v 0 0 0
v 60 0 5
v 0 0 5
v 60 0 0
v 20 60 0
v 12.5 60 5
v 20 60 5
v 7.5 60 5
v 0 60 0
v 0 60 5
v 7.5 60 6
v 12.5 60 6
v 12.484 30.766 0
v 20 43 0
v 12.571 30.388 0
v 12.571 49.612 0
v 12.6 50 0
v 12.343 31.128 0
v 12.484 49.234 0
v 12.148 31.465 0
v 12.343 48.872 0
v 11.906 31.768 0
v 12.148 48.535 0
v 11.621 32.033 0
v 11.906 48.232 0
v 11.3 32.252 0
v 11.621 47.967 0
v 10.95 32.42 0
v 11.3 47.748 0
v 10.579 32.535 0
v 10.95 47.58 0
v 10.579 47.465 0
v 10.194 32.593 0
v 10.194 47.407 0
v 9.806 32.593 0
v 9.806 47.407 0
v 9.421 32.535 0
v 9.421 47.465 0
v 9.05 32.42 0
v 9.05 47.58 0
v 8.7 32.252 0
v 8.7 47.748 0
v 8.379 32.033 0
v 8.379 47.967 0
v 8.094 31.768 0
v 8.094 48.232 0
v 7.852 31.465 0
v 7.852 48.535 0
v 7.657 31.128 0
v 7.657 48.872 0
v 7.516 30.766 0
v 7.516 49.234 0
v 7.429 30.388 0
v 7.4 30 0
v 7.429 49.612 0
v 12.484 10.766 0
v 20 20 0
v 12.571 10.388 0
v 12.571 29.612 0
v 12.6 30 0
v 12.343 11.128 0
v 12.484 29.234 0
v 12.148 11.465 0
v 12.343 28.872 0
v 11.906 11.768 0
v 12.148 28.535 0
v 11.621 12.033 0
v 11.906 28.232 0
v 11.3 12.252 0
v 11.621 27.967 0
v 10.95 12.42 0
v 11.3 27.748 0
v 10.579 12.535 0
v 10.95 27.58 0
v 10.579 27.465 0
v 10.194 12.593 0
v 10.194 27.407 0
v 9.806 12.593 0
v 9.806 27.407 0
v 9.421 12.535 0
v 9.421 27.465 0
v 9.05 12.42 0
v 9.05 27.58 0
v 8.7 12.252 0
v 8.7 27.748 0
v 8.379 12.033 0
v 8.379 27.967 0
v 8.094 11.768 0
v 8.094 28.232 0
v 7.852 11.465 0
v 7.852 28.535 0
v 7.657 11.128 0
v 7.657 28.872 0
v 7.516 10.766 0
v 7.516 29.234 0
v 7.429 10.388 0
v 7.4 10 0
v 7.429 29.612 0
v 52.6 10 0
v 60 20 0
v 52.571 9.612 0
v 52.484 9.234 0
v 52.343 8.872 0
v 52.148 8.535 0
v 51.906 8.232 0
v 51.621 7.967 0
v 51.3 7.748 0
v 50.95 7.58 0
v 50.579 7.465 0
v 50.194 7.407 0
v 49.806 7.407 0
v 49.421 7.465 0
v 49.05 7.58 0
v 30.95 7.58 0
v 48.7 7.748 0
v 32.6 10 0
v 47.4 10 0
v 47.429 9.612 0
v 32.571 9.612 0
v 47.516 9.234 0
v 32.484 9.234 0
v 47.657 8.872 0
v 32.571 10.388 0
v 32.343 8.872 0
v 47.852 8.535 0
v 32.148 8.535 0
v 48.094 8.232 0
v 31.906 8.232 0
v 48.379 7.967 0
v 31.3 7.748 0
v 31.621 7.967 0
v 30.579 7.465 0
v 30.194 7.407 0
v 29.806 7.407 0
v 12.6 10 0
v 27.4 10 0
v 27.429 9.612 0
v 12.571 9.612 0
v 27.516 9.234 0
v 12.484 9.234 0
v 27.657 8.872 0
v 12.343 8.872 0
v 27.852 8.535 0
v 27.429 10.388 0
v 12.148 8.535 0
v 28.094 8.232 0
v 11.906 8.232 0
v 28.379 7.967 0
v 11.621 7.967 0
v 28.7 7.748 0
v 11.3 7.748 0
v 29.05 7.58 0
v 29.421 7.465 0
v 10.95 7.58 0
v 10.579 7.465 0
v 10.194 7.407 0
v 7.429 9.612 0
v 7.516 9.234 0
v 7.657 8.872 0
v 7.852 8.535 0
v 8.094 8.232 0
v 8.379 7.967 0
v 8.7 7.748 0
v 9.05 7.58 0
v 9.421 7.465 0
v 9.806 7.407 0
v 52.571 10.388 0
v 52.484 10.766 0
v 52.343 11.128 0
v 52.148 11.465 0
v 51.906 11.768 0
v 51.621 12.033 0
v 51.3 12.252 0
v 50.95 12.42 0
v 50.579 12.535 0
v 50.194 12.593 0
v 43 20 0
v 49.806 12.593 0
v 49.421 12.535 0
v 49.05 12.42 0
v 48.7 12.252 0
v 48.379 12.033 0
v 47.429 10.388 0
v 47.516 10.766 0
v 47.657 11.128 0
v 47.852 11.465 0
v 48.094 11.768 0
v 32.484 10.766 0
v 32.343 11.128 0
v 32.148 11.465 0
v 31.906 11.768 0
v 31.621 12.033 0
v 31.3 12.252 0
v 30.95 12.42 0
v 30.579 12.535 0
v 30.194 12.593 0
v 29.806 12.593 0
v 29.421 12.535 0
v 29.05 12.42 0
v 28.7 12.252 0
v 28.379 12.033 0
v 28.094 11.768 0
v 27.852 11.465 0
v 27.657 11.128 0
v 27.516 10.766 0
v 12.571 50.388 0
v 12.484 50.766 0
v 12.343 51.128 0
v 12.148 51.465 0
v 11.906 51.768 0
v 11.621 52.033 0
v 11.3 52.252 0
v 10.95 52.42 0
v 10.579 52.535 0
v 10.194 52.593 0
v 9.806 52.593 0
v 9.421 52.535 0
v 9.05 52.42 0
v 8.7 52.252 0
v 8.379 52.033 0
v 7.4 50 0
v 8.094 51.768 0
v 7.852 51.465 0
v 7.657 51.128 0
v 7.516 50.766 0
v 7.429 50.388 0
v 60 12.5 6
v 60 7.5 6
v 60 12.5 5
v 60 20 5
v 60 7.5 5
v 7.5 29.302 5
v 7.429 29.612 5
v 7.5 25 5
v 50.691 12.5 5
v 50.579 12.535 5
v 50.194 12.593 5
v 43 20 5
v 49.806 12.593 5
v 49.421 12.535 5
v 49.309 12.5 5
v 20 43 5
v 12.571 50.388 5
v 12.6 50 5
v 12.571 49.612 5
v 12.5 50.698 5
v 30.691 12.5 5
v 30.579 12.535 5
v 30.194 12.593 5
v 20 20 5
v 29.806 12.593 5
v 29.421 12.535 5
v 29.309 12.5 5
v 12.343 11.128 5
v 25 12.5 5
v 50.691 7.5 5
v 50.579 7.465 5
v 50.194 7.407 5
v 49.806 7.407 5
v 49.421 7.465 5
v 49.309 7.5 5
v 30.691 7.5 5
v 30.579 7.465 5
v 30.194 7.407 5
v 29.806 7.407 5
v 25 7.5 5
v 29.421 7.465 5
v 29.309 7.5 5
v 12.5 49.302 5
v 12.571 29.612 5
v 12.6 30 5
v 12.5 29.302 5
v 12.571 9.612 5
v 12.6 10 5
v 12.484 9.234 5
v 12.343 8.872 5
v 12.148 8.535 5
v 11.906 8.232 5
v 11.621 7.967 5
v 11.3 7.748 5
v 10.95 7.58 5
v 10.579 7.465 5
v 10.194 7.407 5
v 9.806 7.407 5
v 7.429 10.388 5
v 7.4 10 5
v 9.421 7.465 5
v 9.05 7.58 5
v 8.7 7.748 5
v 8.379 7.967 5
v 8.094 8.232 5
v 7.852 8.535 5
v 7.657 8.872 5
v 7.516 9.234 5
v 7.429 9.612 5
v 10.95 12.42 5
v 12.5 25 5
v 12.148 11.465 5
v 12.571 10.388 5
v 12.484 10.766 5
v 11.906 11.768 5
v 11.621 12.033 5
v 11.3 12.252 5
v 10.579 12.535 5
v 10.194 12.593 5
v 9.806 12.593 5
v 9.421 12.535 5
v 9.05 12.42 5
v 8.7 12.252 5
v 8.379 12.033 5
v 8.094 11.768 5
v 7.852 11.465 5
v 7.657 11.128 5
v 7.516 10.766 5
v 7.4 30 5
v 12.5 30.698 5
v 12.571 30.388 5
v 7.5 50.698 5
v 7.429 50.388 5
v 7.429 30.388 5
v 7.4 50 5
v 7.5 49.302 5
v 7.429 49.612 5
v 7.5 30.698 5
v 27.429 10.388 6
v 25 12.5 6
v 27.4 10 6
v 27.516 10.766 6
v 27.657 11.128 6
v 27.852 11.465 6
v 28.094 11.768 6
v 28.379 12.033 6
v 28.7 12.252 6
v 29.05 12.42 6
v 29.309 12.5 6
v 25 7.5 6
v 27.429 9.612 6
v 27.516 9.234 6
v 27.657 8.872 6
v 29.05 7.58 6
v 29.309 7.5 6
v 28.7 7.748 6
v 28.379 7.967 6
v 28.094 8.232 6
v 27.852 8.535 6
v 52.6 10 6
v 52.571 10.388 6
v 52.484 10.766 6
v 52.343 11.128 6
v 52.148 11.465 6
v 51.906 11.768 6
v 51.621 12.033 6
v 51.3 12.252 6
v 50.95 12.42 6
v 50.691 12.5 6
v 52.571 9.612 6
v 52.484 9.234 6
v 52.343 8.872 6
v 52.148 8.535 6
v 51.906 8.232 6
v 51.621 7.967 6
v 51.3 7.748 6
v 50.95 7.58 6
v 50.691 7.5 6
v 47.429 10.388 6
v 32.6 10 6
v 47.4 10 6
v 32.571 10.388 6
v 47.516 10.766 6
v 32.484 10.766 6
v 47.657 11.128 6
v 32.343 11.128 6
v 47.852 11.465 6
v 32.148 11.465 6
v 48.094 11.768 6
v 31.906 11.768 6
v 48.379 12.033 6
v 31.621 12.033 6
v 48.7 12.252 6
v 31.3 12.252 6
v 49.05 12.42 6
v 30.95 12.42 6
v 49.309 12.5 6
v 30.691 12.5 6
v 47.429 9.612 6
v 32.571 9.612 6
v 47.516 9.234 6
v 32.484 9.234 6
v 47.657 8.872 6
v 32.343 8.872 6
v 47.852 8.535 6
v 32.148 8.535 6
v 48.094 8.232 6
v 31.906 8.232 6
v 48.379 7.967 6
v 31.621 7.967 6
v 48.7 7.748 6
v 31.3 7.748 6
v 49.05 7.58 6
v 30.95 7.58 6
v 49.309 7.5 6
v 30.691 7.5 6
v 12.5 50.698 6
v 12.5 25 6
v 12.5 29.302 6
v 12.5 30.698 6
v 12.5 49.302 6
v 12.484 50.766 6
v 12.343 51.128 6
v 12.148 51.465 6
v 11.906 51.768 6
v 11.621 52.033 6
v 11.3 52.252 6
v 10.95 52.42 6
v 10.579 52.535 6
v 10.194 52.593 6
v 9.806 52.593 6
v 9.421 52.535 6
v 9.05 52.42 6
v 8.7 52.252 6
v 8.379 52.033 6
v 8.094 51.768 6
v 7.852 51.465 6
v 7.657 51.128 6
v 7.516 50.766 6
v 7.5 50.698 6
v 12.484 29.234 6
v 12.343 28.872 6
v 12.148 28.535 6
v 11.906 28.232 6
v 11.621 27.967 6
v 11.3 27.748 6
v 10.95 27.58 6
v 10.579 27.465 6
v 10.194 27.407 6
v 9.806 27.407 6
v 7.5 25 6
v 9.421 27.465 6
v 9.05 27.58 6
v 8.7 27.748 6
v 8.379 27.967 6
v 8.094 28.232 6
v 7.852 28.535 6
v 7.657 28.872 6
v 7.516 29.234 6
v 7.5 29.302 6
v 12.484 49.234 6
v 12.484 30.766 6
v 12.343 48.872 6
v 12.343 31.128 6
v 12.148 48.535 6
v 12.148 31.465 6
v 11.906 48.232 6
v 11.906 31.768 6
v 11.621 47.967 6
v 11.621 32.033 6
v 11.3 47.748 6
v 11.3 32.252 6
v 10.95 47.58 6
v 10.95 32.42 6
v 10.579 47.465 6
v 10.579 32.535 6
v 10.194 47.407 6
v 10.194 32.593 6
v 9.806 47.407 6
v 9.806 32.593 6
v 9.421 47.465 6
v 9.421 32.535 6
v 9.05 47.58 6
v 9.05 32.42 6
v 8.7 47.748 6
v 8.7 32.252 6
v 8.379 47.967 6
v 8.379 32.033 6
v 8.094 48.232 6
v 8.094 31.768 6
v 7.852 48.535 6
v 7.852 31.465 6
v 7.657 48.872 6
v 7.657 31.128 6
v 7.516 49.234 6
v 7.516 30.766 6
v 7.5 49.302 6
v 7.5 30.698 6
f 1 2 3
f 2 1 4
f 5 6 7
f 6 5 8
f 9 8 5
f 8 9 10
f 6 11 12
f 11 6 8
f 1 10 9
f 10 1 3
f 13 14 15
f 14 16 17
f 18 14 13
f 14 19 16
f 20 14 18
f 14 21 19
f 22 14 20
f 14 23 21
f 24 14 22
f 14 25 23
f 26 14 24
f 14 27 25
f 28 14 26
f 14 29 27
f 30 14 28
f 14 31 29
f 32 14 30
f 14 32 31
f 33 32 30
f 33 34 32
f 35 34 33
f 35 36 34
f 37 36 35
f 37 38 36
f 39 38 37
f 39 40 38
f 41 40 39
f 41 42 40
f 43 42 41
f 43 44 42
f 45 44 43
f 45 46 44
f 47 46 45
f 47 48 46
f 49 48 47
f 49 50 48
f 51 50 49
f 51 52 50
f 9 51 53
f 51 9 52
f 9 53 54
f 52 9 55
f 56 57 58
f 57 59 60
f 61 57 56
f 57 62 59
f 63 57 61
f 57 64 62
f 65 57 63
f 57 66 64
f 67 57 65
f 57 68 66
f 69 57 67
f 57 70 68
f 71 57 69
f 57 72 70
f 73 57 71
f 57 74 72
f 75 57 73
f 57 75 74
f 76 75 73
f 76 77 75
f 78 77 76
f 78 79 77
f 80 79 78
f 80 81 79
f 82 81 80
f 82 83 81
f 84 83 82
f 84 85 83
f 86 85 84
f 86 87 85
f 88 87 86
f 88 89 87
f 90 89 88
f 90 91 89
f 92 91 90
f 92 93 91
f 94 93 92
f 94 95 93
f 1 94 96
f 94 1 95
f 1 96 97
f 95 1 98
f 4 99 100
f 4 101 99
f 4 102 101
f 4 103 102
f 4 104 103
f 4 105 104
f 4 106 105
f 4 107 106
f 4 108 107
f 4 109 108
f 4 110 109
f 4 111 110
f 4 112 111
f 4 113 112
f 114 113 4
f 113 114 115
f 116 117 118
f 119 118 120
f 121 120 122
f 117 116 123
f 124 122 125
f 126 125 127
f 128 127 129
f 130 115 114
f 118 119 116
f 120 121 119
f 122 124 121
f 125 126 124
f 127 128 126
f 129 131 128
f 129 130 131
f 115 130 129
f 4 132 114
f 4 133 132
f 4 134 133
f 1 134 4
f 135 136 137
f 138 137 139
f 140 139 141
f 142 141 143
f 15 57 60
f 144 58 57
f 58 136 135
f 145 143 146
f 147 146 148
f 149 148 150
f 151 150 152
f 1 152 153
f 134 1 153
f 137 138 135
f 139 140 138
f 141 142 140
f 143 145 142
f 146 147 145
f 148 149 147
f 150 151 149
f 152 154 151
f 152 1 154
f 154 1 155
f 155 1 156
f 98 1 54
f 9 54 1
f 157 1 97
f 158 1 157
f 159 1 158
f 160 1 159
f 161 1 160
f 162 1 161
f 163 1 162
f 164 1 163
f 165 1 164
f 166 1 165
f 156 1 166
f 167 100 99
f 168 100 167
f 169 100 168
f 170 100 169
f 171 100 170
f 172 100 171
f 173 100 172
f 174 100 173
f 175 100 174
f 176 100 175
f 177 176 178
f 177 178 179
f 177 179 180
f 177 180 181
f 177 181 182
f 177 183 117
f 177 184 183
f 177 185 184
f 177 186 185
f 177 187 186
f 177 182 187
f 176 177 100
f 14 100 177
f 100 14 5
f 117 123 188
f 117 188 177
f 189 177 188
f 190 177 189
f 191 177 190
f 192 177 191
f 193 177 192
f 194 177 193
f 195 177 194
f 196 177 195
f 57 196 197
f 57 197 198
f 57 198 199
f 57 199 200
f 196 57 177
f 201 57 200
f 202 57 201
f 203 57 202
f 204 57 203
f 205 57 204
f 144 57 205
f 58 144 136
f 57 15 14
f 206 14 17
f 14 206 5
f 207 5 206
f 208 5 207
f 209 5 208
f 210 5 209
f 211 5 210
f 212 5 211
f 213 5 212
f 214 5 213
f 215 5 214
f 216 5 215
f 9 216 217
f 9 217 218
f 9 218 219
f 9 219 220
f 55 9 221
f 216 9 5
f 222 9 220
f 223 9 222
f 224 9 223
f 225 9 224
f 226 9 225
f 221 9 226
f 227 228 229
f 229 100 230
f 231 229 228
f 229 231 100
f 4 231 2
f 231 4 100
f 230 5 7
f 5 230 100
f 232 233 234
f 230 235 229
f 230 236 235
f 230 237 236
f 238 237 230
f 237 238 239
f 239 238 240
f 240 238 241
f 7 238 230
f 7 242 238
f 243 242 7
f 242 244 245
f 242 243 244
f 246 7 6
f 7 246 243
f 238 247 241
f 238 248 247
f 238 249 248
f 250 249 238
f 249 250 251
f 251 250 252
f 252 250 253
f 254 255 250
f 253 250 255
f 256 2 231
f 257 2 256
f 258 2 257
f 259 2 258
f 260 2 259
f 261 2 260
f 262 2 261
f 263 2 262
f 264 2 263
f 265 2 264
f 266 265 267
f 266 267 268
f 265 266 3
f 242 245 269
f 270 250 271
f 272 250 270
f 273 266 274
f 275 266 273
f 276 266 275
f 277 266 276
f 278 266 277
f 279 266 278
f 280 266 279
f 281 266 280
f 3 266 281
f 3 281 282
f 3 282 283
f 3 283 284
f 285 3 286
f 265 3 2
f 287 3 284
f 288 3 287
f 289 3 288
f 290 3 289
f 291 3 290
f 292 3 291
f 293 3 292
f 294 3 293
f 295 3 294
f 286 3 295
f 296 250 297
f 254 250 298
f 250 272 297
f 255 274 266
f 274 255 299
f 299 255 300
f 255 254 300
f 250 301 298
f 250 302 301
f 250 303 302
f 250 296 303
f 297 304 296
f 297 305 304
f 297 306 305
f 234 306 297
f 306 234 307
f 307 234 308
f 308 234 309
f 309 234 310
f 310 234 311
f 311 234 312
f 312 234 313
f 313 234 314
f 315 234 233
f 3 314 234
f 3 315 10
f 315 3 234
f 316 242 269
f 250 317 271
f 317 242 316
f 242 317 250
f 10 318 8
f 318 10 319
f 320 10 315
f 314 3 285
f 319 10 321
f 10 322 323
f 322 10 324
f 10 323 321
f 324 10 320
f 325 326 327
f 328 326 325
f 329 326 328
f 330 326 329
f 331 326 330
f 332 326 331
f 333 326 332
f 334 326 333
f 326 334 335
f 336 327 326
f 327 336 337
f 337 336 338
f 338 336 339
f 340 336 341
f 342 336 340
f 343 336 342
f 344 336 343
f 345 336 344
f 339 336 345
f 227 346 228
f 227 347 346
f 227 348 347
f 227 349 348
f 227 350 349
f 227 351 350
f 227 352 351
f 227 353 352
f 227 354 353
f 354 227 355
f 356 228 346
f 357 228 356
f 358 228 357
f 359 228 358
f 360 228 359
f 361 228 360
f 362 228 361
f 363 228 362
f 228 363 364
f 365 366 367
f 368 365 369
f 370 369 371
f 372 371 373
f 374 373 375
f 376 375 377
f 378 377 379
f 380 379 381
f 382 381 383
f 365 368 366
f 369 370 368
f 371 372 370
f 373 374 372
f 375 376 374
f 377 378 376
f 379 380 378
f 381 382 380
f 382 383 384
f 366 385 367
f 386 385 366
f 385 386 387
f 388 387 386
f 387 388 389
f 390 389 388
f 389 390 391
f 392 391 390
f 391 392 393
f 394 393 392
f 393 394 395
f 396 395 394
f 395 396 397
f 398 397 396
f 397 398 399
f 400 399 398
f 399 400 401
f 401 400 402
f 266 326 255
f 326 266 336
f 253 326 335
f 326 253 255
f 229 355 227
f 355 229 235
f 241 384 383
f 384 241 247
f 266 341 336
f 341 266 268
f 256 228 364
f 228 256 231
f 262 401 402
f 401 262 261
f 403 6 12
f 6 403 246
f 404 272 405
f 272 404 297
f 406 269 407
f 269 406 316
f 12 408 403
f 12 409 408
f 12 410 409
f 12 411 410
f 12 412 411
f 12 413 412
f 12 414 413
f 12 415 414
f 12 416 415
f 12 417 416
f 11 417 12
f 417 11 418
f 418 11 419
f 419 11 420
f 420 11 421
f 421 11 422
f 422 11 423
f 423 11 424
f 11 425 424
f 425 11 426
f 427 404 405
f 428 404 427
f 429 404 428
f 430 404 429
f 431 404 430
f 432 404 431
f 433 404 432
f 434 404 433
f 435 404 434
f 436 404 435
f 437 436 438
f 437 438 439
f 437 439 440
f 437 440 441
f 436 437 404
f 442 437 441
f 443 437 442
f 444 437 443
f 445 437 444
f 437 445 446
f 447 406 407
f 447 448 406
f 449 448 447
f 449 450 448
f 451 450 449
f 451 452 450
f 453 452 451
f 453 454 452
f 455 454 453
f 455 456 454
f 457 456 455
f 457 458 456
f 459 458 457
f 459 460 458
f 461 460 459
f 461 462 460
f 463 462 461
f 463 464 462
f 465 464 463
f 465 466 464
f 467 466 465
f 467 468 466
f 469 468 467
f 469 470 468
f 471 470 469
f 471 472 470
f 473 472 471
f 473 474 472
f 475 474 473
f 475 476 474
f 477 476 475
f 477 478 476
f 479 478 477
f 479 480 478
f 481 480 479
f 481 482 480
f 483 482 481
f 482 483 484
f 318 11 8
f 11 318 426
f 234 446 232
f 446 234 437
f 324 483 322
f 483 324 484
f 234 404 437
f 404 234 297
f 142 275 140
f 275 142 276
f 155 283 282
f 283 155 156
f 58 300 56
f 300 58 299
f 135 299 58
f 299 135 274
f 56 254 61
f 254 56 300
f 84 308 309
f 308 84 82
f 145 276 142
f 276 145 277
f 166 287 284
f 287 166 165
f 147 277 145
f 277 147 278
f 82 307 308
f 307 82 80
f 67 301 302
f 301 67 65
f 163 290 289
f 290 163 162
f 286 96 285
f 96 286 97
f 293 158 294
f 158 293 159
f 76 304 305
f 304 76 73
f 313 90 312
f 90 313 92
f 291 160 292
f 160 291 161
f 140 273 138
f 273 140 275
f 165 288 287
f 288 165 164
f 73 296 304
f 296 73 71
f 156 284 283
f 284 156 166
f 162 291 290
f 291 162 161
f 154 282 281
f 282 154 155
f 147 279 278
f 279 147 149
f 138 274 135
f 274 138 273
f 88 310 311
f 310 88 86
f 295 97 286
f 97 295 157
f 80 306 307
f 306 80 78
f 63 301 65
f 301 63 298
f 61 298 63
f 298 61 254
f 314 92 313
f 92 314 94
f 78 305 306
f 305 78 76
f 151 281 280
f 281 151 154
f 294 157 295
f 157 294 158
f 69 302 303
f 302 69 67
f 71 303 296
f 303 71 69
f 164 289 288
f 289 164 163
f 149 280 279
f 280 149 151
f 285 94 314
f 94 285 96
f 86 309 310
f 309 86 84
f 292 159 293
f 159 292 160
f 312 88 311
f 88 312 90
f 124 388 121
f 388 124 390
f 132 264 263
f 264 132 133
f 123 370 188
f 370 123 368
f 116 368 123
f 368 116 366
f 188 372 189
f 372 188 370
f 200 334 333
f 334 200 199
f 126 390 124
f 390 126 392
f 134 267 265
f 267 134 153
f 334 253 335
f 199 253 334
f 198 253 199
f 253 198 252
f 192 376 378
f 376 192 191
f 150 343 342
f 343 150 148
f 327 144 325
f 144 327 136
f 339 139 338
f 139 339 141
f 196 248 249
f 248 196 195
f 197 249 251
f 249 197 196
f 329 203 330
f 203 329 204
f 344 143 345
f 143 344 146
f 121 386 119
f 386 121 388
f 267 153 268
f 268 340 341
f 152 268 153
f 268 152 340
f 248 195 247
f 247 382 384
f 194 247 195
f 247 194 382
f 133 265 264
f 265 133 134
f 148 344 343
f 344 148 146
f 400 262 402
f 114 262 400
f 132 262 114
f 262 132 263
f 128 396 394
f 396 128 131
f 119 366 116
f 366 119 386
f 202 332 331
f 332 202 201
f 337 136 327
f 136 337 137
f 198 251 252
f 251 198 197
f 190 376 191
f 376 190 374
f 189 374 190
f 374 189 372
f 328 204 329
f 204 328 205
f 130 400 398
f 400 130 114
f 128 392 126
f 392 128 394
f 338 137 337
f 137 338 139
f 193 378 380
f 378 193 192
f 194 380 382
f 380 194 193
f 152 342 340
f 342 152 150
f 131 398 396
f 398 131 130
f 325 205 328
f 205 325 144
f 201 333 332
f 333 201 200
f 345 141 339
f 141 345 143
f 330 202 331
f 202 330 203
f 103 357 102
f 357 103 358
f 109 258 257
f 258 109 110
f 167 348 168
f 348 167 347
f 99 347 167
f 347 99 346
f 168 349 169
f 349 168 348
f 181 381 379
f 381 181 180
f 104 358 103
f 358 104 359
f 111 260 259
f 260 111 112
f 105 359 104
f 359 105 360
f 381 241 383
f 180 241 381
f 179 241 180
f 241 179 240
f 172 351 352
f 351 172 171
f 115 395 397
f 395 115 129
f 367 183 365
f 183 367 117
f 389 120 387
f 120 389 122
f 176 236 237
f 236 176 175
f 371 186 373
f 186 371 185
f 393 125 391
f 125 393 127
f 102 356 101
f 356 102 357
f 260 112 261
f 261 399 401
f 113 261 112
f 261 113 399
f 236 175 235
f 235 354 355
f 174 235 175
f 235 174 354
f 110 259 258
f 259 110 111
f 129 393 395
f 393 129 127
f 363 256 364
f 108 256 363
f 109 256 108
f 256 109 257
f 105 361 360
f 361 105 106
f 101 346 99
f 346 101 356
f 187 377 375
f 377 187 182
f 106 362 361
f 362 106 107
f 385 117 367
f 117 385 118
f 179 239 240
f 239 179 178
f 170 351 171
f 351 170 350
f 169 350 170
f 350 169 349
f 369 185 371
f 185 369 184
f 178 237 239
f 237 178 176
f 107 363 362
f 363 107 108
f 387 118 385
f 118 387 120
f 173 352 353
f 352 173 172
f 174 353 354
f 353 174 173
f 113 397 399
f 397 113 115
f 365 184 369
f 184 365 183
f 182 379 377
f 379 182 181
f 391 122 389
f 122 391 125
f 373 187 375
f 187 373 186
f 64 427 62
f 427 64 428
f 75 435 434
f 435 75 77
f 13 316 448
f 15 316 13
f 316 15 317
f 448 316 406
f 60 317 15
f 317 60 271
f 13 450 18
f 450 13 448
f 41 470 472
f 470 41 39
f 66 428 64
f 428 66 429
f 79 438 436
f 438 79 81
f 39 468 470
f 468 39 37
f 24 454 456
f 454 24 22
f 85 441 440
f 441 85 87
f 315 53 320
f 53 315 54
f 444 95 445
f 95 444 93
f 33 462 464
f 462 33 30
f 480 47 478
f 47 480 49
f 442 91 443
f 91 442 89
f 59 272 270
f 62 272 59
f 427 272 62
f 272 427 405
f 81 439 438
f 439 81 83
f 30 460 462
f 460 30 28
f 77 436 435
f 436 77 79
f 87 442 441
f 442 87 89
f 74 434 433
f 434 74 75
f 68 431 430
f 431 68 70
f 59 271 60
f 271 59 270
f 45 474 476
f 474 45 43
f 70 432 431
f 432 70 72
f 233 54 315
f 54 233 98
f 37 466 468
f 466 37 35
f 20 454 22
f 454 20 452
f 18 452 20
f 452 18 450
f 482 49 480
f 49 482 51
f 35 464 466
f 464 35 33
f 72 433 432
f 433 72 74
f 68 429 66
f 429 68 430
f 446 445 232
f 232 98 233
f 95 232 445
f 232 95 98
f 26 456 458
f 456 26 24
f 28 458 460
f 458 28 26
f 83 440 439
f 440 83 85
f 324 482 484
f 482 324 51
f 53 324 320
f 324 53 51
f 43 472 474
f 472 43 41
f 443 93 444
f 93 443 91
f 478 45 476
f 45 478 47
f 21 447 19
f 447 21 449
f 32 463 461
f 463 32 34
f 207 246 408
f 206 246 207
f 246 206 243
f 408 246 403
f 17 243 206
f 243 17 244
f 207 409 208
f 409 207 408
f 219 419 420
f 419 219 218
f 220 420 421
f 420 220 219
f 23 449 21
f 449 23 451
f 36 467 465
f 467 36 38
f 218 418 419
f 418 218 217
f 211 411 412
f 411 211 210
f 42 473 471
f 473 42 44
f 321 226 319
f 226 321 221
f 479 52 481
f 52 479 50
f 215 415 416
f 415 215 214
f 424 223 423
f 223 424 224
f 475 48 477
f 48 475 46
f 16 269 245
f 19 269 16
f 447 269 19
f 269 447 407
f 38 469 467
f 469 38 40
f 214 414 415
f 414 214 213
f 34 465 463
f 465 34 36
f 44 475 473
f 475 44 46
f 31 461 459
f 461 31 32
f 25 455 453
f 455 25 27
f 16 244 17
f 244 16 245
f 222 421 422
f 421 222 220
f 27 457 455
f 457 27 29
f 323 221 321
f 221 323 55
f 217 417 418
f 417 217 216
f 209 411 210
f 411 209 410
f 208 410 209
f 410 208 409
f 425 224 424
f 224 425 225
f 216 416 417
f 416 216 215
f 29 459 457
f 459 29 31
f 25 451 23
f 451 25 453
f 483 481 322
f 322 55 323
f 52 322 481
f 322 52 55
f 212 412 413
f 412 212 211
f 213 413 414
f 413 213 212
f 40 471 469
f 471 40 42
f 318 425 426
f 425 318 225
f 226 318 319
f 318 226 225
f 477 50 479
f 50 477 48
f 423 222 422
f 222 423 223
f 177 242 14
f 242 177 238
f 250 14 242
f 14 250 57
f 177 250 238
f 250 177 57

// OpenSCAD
$fn = 42;

module prism(l, w, h) {
    polyhedron(
        points = [[0,0,0], [l,0,0], [l,w,0], [0,w,0], [0,w,h], [l,w,h]],
        faces = [[0,1,2,3],[5,4,3,2],[0,4,5,1],[0,3,4],[5,2,1]]
    );
}

difference() {
    union() {
        color("green")
        hull() {
            cube([60, 20, 5]);
            cube([20, 60, 5]);
        }
        
        color("red")
        translate([25, 7.5, 5])
        cube([35, 5, 1]);
        
        color("red")
        translate([7.5, 25, 5])
        cube([5, 35, 1]);
    }
    
    translate([20, 20 + 23, -1])
    rotate([0, -90, 180])
    prism(7, 23, 23);
    
    for (i = [10, 30, 50])
    translate([i, 10, -1])
    cylinder(d = 5.2, h = 8);
    
    for (i = [30, 50])
    translate([10, i, -1])
    cylinder(d = 5.2, h = 8);
} 
